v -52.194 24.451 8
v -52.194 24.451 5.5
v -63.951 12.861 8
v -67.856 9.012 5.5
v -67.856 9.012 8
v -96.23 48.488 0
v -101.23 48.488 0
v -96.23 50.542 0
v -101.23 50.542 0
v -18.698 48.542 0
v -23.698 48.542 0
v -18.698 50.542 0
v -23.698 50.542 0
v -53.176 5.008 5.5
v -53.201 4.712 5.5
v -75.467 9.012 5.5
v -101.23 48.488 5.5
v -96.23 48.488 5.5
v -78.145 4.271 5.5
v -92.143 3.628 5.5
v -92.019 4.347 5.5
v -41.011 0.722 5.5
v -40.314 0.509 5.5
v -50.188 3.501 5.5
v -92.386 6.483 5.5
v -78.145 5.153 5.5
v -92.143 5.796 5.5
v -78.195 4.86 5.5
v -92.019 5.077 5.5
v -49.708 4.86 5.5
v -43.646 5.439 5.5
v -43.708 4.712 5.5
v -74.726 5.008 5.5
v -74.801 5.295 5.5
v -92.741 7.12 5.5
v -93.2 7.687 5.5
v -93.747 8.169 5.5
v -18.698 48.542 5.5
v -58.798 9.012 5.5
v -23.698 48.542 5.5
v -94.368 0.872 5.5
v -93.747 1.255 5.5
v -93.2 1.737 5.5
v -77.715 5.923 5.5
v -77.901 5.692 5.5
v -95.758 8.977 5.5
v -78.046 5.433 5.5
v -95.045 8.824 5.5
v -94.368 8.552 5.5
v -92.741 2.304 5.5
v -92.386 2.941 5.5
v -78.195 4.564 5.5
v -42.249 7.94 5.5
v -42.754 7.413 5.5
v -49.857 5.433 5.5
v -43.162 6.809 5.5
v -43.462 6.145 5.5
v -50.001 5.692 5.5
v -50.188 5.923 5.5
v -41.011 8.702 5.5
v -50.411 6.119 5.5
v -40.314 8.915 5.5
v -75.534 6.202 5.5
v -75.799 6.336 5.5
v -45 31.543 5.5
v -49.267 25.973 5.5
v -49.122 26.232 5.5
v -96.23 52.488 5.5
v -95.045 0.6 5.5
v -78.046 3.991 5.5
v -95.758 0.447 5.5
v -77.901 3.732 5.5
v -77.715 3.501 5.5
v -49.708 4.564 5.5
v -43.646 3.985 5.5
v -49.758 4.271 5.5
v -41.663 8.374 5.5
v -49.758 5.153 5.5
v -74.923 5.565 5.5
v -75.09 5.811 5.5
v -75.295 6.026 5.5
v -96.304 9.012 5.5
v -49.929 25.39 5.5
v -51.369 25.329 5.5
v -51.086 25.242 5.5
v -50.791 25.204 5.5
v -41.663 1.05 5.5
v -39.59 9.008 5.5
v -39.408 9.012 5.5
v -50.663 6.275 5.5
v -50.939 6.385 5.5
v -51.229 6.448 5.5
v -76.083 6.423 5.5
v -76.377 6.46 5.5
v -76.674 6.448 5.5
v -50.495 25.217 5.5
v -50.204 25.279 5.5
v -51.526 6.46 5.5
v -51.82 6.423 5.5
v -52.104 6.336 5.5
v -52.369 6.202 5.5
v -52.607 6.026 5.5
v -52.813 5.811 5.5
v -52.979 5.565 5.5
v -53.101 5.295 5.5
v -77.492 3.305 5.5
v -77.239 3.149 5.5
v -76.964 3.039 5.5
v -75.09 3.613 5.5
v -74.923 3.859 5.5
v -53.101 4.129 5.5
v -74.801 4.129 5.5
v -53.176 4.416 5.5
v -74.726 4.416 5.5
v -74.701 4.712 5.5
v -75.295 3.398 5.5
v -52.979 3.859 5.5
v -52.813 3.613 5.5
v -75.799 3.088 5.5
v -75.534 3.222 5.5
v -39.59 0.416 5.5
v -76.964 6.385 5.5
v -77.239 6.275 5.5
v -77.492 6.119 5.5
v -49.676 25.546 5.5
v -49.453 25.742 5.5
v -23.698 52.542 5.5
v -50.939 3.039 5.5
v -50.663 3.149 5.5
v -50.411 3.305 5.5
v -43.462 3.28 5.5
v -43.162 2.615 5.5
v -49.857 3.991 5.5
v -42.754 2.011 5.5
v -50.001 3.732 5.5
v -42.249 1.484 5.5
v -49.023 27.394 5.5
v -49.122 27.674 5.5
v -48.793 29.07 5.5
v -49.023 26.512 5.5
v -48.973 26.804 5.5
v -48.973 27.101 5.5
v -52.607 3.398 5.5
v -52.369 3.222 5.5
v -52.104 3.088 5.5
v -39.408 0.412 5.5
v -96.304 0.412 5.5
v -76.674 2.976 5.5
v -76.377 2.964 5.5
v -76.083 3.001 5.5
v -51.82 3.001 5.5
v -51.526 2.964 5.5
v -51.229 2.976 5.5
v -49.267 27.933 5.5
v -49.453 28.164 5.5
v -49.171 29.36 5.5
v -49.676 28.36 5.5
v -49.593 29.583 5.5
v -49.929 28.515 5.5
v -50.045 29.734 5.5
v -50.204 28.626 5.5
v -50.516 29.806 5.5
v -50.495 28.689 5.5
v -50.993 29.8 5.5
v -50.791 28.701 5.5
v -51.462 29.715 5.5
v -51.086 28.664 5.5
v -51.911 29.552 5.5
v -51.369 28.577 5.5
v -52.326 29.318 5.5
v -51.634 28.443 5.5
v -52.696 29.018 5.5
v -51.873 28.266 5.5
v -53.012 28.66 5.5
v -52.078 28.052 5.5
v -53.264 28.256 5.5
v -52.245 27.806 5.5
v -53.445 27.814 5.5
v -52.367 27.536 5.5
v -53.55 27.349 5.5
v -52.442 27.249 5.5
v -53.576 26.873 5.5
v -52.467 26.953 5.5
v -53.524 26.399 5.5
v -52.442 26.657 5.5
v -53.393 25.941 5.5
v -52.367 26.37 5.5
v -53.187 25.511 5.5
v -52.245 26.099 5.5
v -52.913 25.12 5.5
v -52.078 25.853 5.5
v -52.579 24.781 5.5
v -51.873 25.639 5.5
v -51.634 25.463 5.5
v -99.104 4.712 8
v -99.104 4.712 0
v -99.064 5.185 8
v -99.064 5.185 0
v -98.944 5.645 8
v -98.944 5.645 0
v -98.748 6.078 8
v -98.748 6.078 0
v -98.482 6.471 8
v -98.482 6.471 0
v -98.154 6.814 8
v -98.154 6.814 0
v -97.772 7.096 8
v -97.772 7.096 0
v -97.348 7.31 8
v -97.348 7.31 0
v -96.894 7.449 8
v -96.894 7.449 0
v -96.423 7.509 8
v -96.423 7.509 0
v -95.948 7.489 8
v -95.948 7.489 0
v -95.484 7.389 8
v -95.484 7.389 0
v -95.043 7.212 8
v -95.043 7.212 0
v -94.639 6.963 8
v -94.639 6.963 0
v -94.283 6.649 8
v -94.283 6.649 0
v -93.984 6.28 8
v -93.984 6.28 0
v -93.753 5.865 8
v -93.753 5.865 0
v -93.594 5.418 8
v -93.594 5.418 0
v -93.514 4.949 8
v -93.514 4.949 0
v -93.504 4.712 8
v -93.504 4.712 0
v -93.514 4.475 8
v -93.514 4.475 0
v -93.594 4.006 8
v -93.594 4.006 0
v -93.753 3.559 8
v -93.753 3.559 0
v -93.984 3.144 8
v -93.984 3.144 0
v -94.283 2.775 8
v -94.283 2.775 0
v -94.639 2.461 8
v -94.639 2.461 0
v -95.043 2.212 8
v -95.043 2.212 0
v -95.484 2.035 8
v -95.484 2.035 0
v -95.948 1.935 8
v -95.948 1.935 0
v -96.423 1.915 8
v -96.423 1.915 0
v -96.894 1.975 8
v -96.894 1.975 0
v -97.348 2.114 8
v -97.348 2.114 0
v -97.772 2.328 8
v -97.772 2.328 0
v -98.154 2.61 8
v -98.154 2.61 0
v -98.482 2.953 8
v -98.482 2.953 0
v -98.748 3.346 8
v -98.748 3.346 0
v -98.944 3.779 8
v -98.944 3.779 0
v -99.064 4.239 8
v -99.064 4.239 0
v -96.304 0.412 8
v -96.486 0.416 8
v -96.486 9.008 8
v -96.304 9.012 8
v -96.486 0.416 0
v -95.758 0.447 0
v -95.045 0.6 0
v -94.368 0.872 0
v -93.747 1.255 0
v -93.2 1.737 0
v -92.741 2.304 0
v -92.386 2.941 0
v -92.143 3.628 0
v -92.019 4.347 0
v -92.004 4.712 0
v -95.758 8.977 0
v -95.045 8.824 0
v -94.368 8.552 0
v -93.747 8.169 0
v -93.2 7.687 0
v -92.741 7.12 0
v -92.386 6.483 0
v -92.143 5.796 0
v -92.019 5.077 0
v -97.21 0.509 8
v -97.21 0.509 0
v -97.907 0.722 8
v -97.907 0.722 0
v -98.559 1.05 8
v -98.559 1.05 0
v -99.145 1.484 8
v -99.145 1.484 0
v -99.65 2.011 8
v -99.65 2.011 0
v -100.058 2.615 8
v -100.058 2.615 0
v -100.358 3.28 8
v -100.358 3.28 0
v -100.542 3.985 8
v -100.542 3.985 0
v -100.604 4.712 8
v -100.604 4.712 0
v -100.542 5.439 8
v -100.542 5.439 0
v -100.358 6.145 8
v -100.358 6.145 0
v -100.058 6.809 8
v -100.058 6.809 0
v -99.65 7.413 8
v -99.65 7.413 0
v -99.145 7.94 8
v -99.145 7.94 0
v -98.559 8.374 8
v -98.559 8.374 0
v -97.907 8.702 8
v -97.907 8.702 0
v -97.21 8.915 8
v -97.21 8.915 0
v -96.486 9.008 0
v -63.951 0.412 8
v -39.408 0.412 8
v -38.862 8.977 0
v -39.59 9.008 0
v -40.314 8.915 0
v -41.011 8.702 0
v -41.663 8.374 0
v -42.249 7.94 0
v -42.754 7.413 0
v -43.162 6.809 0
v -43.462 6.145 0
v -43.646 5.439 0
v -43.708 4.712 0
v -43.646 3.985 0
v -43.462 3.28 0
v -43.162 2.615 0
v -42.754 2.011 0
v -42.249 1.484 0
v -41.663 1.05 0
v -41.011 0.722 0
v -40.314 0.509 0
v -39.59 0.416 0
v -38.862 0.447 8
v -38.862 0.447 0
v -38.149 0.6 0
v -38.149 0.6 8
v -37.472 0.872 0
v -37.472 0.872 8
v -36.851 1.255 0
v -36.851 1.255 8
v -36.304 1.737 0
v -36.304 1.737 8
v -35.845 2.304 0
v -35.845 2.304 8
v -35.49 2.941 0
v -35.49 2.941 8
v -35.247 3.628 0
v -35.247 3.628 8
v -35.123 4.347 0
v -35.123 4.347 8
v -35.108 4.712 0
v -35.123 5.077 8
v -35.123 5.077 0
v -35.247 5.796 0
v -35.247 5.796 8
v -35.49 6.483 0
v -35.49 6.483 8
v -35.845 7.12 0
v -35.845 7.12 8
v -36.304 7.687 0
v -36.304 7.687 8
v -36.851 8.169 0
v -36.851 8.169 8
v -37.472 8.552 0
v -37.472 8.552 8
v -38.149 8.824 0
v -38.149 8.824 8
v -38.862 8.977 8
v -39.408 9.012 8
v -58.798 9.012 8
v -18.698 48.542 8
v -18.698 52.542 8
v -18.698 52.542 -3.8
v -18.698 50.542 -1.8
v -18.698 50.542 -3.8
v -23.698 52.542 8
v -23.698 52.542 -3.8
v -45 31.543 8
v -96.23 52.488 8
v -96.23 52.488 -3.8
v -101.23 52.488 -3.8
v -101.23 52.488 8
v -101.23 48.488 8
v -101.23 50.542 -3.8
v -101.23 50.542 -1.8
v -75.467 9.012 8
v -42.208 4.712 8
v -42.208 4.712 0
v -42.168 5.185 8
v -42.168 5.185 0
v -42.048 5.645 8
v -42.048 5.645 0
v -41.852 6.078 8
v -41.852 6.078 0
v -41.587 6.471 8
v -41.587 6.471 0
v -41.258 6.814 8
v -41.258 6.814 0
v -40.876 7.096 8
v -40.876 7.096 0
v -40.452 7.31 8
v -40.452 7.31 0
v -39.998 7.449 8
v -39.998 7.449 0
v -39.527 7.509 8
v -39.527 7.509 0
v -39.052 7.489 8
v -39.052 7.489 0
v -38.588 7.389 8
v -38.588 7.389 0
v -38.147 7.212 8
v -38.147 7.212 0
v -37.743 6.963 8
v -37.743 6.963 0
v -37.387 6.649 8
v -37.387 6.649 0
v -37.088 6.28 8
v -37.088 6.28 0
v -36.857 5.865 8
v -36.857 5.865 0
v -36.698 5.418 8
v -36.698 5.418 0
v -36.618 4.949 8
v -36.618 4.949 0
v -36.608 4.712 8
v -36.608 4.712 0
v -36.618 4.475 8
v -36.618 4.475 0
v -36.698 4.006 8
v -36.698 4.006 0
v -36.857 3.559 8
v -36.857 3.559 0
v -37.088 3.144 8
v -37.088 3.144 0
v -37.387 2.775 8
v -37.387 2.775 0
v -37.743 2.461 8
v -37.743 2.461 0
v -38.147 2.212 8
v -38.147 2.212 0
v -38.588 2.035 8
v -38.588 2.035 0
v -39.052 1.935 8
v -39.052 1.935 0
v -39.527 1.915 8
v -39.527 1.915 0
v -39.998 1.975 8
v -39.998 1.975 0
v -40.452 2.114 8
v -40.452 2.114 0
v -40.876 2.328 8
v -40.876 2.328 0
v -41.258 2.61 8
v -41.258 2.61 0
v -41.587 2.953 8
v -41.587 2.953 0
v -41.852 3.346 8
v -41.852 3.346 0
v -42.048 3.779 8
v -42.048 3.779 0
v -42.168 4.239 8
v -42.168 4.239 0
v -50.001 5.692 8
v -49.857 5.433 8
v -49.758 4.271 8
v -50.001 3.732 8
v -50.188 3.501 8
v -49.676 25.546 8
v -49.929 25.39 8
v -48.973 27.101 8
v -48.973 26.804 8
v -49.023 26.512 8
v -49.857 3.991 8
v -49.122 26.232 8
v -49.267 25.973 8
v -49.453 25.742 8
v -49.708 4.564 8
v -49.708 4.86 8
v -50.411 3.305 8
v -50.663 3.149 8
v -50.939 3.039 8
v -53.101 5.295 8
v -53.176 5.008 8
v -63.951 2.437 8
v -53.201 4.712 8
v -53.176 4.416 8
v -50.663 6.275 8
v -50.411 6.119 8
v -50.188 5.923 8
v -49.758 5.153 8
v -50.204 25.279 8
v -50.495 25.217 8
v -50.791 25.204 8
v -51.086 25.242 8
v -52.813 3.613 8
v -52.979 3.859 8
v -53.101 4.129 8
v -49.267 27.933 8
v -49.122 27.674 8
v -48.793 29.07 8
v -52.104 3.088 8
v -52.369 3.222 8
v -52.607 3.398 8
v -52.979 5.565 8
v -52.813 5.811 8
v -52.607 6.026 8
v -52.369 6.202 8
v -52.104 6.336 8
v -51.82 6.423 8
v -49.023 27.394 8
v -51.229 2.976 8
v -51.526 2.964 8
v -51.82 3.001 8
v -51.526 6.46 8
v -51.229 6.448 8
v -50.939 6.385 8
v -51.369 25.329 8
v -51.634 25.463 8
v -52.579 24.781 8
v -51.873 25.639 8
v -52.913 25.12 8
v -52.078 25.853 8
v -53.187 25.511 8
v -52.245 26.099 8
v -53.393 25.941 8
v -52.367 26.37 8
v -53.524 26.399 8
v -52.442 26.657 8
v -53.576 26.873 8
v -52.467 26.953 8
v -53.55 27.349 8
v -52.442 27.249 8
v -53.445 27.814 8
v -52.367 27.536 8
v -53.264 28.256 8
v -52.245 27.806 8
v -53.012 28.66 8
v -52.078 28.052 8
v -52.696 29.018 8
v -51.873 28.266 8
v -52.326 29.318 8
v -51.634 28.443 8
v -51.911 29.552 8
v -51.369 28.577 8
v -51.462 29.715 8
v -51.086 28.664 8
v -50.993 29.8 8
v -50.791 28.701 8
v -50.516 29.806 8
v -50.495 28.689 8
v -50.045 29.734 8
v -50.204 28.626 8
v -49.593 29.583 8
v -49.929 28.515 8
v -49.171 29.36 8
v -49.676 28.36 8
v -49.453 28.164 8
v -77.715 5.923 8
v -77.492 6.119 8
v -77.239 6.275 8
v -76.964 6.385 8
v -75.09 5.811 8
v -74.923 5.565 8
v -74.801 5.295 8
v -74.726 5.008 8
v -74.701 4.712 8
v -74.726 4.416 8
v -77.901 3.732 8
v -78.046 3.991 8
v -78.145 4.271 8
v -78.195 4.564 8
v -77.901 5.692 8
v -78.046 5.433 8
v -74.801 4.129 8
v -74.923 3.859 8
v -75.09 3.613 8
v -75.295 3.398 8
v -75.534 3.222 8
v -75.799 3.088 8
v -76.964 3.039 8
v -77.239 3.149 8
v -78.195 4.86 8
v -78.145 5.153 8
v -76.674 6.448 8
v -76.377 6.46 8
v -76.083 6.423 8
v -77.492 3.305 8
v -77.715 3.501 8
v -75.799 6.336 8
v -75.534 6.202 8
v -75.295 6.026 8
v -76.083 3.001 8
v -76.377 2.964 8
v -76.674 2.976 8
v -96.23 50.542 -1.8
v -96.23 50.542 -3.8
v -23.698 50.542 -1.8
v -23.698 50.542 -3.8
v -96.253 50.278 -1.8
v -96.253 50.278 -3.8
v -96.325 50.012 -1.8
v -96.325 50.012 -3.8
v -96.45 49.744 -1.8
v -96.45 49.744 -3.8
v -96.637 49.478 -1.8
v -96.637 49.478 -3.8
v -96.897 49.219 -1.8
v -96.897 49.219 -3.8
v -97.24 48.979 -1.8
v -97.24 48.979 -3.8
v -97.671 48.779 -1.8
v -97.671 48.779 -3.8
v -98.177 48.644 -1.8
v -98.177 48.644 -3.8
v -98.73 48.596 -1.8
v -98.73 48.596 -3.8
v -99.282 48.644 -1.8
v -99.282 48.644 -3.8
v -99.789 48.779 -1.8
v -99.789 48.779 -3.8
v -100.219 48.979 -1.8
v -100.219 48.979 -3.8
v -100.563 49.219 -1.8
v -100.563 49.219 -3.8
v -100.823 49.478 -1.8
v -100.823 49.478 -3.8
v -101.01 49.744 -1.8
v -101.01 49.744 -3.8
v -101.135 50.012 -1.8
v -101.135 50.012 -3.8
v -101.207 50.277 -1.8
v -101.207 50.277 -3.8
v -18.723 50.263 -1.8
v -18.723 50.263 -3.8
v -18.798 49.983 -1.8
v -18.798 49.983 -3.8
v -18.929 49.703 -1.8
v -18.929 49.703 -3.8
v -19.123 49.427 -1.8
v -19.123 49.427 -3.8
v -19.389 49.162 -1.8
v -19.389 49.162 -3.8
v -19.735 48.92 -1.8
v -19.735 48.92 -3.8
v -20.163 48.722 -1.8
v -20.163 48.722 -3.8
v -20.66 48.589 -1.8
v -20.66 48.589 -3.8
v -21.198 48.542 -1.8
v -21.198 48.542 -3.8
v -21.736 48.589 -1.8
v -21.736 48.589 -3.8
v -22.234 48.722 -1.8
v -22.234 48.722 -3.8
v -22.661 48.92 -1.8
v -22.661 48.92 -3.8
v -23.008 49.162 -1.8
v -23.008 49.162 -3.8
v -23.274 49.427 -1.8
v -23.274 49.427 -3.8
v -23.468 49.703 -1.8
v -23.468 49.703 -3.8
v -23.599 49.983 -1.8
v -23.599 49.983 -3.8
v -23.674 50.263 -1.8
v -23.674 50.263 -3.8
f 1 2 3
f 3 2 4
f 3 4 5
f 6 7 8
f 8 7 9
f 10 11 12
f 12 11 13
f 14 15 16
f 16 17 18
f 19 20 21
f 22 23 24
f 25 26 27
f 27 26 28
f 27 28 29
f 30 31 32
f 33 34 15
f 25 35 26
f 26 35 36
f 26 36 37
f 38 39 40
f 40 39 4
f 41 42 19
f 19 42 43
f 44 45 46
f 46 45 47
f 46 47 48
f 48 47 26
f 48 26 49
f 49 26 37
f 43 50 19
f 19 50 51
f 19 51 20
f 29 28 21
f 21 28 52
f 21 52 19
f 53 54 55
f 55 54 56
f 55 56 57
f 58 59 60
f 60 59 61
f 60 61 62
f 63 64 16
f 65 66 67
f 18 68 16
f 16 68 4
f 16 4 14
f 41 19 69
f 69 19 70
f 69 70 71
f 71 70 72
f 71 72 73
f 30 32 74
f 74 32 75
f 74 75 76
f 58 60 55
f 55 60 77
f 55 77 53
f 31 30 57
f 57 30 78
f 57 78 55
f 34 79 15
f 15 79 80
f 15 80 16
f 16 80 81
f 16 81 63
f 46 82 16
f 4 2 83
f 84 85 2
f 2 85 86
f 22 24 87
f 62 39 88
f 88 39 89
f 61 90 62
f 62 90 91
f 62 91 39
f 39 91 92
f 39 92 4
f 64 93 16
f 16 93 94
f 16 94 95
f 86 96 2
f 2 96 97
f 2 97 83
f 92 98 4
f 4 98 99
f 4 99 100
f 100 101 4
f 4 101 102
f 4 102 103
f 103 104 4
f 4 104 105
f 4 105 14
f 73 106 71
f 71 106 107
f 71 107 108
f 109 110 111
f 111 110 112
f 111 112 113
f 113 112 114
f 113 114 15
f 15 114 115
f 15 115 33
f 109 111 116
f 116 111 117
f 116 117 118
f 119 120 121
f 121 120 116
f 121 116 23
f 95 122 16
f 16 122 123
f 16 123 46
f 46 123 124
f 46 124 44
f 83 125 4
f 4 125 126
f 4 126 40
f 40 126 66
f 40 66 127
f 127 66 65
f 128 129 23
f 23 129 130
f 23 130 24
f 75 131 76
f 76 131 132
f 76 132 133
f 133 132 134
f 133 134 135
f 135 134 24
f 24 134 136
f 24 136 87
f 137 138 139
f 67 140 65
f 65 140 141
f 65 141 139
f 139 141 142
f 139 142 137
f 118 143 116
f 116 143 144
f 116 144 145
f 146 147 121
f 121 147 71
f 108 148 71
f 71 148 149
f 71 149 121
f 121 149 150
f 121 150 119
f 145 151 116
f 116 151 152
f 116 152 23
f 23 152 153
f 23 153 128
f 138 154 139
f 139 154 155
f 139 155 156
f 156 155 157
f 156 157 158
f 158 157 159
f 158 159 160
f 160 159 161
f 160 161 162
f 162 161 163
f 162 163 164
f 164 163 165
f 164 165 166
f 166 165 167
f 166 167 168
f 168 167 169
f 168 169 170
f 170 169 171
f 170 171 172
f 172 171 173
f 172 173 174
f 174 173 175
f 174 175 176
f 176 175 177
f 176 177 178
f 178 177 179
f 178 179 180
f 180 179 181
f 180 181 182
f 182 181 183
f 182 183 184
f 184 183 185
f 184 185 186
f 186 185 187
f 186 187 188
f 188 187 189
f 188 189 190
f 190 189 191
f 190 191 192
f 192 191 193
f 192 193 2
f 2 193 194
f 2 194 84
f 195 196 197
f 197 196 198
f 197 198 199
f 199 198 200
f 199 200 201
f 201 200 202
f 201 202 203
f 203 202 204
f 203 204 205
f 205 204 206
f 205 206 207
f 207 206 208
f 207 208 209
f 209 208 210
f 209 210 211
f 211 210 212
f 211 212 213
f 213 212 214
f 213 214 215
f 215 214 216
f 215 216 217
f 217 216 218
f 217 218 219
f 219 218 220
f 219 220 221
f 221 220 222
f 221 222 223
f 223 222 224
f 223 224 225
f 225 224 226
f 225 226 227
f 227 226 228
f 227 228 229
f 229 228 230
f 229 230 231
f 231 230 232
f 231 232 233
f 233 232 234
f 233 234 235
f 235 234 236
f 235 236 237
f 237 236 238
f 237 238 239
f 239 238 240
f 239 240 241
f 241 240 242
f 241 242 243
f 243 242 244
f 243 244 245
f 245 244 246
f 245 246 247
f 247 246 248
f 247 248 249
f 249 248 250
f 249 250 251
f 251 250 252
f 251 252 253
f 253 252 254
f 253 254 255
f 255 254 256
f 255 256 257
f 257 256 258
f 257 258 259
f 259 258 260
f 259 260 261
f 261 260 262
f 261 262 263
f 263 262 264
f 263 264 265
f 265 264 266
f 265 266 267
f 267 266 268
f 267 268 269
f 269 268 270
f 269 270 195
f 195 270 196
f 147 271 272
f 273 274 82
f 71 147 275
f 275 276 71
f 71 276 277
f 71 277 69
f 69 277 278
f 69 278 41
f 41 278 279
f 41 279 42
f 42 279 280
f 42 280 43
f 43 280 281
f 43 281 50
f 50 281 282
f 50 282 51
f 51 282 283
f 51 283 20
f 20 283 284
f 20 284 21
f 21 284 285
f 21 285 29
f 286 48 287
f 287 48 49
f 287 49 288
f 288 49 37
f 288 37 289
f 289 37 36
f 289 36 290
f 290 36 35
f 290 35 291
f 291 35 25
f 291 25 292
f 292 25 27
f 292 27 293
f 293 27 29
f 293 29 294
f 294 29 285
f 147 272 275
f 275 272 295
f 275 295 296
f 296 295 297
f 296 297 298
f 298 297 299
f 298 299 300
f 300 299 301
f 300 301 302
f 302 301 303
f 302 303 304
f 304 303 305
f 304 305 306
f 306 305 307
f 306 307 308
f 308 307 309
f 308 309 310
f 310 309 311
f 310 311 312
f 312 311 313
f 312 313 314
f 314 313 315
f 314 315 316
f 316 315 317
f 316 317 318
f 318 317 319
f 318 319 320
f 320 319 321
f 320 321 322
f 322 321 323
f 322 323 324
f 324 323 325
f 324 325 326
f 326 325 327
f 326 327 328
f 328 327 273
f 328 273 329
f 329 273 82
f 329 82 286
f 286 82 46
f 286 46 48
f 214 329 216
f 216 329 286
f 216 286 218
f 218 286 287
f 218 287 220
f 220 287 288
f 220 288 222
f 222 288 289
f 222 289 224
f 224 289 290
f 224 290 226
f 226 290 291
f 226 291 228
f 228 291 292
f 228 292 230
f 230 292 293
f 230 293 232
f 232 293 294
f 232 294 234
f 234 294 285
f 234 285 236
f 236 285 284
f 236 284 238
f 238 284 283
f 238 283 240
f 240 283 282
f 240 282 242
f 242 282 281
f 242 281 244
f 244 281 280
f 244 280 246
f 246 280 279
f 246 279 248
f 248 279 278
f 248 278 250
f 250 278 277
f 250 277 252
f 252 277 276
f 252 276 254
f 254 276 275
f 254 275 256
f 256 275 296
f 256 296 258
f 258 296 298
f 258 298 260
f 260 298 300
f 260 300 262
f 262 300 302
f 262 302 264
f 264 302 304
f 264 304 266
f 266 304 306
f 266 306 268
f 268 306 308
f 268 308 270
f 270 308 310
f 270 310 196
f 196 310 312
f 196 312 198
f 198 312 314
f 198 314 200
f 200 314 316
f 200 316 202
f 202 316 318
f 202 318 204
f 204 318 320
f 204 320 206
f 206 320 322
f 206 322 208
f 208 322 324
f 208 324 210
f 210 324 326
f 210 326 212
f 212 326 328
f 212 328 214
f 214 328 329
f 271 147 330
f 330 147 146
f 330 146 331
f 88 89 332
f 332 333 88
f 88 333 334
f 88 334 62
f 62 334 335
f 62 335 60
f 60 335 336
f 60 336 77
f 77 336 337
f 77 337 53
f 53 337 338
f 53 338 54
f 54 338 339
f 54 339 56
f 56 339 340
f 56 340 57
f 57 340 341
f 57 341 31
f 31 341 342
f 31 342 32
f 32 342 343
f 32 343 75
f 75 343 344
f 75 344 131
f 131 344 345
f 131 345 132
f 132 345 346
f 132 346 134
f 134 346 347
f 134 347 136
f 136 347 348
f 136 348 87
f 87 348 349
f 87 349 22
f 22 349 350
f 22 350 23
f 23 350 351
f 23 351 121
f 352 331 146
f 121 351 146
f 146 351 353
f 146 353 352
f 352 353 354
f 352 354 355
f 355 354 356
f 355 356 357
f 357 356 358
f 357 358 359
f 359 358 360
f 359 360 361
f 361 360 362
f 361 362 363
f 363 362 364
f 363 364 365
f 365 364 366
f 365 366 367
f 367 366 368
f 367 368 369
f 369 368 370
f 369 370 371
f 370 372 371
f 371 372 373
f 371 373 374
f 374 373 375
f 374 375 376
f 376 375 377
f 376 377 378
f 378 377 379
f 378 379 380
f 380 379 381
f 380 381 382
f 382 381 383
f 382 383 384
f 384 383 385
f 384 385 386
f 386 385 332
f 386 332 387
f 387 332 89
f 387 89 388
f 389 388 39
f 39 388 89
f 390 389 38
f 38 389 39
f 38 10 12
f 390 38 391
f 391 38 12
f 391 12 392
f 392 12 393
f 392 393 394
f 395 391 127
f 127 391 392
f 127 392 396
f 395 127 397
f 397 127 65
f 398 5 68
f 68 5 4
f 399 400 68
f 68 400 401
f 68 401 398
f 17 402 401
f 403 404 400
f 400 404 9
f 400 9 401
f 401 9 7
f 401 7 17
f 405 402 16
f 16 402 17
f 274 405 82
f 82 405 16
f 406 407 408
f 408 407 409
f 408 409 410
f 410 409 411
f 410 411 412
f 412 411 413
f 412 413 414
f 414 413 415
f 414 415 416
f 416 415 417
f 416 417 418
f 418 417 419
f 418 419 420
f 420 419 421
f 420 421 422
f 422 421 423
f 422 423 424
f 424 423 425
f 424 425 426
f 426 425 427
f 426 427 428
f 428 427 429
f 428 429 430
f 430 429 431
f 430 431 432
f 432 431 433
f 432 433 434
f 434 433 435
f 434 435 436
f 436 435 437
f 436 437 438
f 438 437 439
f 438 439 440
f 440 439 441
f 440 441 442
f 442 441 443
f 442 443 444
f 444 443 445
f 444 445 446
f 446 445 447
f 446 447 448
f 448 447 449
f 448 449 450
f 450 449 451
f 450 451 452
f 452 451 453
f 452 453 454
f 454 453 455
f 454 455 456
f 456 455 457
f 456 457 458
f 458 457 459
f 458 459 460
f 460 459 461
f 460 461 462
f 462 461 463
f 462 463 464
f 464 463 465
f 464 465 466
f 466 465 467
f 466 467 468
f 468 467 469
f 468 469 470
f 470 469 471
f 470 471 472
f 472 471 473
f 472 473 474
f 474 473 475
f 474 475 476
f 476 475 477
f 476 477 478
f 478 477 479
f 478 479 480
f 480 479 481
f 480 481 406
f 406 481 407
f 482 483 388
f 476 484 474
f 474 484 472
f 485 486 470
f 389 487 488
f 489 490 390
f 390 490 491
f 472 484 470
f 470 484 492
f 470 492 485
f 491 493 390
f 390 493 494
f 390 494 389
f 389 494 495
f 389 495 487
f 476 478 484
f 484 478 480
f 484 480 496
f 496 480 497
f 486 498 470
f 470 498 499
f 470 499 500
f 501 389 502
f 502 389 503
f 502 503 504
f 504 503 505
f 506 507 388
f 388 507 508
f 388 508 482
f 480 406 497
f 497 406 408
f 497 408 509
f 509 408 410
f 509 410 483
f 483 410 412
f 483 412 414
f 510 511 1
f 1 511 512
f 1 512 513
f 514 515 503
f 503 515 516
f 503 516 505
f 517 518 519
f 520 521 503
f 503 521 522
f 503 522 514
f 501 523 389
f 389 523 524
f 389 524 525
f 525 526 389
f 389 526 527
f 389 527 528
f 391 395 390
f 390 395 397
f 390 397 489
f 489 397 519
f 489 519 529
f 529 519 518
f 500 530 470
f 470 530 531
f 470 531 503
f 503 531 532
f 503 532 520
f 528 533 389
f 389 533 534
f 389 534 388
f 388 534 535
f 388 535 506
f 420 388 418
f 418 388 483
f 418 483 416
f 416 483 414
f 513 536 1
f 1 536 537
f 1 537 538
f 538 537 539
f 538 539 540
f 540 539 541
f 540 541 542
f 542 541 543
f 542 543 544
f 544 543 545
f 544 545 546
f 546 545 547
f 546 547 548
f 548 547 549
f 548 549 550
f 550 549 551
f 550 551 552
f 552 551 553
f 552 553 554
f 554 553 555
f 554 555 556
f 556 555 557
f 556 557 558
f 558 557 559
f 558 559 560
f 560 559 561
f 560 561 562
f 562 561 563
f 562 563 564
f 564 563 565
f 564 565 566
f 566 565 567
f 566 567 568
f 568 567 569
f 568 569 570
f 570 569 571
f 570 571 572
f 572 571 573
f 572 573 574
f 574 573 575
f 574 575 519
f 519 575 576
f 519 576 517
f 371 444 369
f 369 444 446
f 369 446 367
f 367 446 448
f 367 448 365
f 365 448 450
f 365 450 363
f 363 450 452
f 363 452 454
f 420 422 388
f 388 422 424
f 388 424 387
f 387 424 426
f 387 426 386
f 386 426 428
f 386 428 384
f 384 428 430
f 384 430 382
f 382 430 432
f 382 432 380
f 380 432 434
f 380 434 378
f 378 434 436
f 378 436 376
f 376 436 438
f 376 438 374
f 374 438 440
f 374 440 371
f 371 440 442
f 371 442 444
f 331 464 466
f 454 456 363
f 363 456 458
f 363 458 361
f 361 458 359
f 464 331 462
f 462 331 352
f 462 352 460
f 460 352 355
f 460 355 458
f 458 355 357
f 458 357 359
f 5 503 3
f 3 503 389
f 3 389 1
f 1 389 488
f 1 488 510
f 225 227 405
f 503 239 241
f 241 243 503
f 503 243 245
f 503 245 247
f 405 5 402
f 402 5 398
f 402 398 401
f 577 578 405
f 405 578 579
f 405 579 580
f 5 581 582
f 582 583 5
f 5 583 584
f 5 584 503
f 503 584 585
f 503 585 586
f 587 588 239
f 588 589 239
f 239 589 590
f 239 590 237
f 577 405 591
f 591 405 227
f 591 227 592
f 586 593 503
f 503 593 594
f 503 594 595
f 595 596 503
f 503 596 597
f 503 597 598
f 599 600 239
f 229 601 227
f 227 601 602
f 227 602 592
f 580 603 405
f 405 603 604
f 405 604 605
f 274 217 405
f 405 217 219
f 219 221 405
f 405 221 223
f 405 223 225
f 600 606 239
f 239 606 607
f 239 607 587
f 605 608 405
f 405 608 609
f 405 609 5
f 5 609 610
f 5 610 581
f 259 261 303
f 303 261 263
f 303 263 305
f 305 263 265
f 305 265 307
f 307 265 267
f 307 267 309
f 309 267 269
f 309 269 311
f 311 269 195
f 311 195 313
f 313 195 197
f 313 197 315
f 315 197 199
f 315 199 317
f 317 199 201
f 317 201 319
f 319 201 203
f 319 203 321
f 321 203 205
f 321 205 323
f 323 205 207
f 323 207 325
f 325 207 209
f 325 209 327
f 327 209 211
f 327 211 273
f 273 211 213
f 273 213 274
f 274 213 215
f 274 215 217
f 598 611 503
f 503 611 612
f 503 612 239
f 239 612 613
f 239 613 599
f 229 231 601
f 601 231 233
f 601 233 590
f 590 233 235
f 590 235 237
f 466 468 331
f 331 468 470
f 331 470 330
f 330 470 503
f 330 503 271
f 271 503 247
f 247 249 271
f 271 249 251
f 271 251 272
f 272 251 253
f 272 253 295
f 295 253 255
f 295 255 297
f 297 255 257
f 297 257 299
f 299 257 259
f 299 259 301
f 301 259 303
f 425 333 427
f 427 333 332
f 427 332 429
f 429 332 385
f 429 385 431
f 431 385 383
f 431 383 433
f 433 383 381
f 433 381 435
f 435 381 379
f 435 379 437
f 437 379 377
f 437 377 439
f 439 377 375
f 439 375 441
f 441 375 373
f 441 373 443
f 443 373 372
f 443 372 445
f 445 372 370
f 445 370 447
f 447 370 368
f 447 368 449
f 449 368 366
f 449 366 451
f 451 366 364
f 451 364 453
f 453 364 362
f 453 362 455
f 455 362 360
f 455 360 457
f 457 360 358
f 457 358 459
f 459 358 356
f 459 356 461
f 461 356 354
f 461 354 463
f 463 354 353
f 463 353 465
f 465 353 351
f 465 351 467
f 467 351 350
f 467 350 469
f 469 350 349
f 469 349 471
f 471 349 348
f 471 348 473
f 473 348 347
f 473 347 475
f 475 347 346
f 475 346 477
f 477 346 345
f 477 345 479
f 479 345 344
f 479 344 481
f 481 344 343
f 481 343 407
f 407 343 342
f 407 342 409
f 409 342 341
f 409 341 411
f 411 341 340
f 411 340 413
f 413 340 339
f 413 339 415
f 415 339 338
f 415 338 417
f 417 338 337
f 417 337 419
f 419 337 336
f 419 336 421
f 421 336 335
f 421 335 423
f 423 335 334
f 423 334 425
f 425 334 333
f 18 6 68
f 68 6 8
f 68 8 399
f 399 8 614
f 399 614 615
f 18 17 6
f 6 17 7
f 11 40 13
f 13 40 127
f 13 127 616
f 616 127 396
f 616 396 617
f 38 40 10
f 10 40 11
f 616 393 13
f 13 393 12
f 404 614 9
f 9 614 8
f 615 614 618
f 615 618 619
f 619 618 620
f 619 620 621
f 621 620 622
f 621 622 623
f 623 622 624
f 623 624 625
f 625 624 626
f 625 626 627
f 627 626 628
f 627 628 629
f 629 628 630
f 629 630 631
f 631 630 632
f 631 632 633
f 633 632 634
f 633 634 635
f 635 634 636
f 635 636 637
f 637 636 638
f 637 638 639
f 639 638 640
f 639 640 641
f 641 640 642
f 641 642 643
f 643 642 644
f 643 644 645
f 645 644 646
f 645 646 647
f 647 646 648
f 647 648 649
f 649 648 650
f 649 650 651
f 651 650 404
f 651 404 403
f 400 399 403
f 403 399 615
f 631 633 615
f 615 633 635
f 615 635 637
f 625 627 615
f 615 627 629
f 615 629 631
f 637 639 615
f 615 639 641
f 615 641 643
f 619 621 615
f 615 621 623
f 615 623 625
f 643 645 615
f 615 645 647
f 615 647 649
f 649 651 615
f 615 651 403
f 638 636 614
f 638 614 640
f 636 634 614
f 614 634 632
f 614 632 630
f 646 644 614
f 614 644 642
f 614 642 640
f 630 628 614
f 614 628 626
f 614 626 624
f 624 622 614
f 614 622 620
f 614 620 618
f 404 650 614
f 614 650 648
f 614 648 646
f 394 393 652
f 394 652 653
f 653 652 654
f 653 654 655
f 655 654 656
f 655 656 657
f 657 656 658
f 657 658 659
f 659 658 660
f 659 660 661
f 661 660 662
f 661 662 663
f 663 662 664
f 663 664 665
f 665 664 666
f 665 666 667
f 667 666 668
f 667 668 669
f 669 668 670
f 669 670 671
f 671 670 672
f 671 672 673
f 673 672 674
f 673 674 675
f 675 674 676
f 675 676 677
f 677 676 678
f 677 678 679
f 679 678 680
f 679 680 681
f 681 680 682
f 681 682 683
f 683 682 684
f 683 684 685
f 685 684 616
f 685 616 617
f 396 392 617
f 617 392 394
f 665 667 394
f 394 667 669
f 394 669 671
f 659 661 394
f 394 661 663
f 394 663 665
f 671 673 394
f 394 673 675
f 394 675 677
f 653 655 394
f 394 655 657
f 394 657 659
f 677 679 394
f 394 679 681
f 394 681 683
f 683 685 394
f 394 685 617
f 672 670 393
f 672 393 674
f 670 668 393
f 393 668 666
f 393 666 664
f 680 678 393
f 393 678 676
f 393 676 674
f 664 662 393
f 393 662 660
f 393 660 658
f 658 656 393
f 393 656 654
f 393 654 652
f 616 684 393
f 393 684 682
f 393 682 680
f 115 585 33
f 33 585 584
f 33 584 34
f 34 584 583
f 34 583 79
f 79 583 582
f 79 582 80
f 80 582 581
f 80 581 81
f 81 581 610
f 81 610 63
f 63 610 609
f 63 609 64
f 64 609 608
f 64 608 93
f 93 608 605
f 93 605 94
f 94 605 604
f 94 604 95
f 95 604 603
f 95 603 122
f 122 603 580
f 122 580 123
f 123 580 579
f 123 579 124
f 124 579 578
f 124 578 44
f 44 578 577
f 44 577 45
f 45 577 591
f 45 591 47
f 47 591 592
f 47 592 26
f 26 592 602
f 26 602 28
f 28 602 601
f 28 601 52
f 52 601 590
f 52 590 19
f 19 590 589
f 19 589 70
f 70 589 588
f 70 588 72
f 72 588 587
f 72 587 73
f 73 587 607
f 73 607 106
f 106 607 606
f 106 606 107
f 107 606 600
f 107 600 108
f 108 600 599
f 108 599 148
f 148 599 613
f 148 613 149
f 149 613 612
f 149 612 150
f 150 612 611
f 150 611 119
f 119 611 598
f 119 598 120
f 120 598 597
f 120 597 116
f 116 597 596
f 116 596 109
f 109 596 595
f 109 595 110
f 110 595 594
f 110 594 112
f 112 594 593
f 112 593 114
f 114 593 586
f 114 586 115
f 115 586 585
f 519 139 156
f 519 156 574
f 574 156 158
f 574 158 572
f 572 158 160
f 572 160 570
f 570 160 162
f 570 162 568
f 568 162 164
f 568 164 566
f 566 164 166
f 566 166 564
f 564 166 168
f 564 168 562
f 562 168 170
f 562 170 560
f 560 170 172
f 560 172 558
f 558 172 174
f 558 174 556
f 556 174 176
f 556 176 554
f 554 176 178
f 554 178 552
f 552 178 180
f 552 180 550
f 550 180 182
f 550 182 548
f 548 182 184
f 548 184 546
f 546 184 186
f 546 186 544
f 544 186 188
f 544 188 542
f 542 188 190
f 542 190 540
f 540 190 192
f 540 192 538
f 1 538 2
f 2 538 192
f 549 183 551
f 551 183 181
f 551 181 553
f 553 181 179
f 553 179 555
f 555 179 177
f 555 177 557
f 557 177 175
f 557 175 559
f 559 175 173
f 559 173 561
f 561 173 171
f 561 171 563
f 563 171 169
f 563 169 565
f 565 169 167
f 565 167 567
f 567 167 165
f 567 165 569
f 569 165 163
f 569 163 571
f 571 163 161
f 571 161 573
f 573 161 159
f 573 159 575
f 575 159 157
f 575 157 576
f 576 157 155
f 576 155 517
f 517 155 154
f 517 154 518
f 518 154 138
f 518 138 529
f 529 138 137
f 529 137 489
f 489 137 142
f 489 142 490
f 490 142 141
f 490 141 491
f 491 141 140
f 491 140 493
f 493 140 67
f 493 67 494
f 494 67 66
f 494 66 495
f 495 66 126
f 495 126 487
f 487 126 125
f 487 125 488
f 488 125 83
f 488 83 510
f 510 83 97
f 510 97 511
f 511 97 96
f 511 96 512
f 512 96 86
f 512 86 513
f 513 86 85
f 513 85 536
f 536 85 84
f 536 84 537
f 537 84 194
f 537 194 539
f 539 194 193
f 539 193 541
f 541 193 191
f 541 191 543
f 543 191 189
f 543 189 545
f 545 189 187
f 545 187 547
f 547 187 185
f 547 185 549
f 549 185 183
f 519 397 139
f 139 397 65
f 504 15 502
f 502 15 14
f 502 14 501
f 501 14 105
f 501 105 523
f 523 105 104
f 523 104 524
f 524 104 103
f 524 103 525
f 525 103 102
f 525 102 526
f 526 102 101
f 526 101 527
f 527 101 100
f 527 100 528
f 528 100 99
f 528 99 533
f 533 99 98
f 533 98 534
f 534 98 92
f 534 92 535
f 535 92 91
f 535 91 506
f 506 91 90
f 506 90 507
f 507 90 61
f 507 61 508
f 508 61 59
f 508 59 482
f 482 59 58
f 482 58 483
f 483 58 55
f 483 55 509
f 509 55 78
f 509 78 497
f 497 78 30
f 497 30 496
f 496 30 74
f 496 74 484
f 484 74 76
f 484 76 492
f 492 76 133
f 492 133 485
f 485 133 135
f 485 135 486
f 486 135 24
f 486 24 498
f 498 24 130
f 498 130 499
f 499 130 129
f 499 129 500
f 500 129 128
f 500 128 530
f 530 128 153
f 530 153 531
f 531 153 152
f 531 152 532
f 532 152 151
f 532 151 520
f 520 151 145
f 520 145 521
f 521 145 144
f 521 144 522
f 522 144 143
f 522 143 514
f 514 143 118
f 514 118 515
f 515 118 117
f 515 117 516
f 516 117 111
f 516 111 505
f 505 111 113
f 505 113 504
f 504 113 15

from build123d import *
from build123d.topology import SkipClean

# Parameters (mm, degrees)
SKETCH1_R           = 4.3
SKETCH1_R_2         = 2.8
SKETCH1_W           = 5
SKETCH1_H           = 2
BOSS_EXTRUDE1_DEPTH = 5.5
SKETCH2_R           = 2.8
BOSS_EXTRUDE2_DEPTH = 2.5
SKETCH3_W           = 5
SKETCH3_H           = 2
SKETCH3_H_2         = 1.945877
BOSS_EXTRUDE3_DEPTH = 1.8
SKETCH4_RX          = 2.5
SKETCH4_RY          = 1.945877
BOSS_EXTRUDE4_DEPTH = 2
CUT_EXTRUDE1_REACH  = 116.662
BOSS_EXTRUDE5_DEPTH = 2.5
SKETCH7_R           = 1.75
CUT_EXTRUDE2_DEPTH  = 115.431852156
CUT_EXTRUDE3_DEPTH  = 12.446


with BuildPart() as part:
    # Sketch1 → Boss-Extrude1 (new body)
    # profile 1 of 6: a face of its own
    with BuildSketch(Plane.XY):
        with Locations((-96.304, 4.712)):
            Circle(SKETCH1_R)
        with Locations((-96.304, 4.712)):
            Circle(SKETCH1_R_2, mode=Mode.SUBTRACT)
    # profile 2 of 6: a face of its own
    with BuildSketch(Plane.XY):
        with Locations((-39.408, 4.712)):
            Circle(SKETCH1_R)
        with Locations((-39.408, 4.712)):
            Circle(SKETCH1_R_2, mode=Mode.SUBTRACT)
    # profile 3 of 6: a face of its own
    with BuildSketch(Plane.XY):
        with Locations((-98.72988, 49.487957)):
            Rectangle(SKETCH1_W, SKETCH1_H)
    # profile 4 of 6: a face of its own
    with BuildSketch(Plane.XY):
        with Locations((-98.72988, 51.487957)):
            Rectangle(SKETCH1_W, SKETCH1_H)
    # profile 5 of 6: a face of its own
    with BuildSketch(Plane.XY):
        with Locations((-21.198302598, 49.54208)):
            Rectangle(SKETCH1_W, SKETCH1_H)
    # profile 6 of 6: a face of its own
    with BuildSketch(Plane.XY):
        with Locations((-21.198302598, 51.54208)):
            Rectangle(SKETCH1_W, SKETCH1_H)
    extrude(amount=BOSS_EXTRUDE1_DEPTH)

    # Sketch2 → Boss-Extrude2 (add)
    with BuildSketch(Plane.XY.offset(5.5)):
        with BuildLine():
            Line((-96.304, 0.412), (-39.408, 0.412))
            ThreePointArc((-39.408, 0.412), (-35.108, 4.712), (-39.408, 9.012))
            Line((-39.408, 9.012), (-58.798327935, 9.012))
            Line((-58.798327935, 9.012), (-18.698302598, 48.54208))
            Line((-18.698302598, 48.54208), (-18.698302598, 52.54208))
            Line((-18.698302598, 52.54208), (-23.698302598, 52.54208))
            Line((-23.698302598, 52.54208), (-67.856, 9.012))
            Line((-67.856, 9.012), (-96.22988, 52.487957))
            Line((-96.22988, 52.487957), (-101.22988, 52.487957))
            Line((-101.22988, 52.487957), (-101.22988, 48.487957))
            Line((-101.22988, 48.487957), (-75.46653529, 9.012))
            Line((-75.46653529, 9.012), (-96.304, 9.012))
            ThreePointArc((-96.304, 9.012), (-100.604, 4.712), (-96.304, 0.412))
        make_face()
        with Locations((-96.304, 4.712)):
            Circle(SKETCH2_R, mode=Mode.SUBTRACT)
        with Locations((-39.408, 4.712)):
            Circle(SKETCH2_R, mode=Mode.SUBTRACT)
    extrude(amount=BOSS_EXTRUDE2_DEPTH)

    # Sketch3 → Boss-Extrude3 (add)
    with BuildSketch(Plane(origin=(0, 0, 0), x_dir=(-1, 0, 0), z_dir=(0, 0, -1))):
        with Locations((21.198302598, 51.54208)):
            Rectangle(SKETCH3_W, SKETCH3_H)
        with Locations((98.72988, 51.5150185)):
            Rectangle(SKETCH3_W, SKETCH3_H_2)
    extrude(amount=BOSS_EXTRUDE3_DEPTH)

    # Sketch4 → Boss-Extrude4 (add)
    with BuildSketch(Plane(origin=(0, 0, -1.8), x_dir=(-1, 0, 0), z_dir=(0, 0, -1))):
        with BuildLine():
            add(Edge.make_bspline(
                [(101.22988, 50.54208), (101.22988, 52.487957031), (98.72987996, 52.487957)],
                knots=[0, 0, 0, 1.570796343, 1.570796343, 1.570796343], degree=2, weights=[1, 0.707106776, 1]))
            Line((101.22988, 50.54208), (101.22988, 52.487957))
            Line((101.22988, 52.487957), (98.72987996, 52.487957))
        make_face()
        with BuildLine():
            Line((96.22988, 52.487957), (96.22988, 50.54208))
            add(Edge.make_bspline(
                [(98.72987996, 52.487957), (96.22988, 52.487956969), (96.22988, 50.54208)],
                knots=[1.570796343, 1.570796343, 1.570796343, 3.141592654, 3.141592654, 3.141592654], degree=2, weights=[1, 0.707106787, 1]))
            Line((98.72987996, 52.487957), (96.22988, 52.487957))
        make_face()
        with Locations((98.72988, 50.54208)):
            Ellipse(SKETCH4_RX, SKETCH4_RY)
        with BuildLine():
            Line((18.698302598, 52.54208), (18.698302598, 50.54208))
            add(Edge.make_bspline(
                [(21.198302598, 52.54208), (18.698302598, 52.54208), (18.698302598, 50.54208)],
                knots=[1.570796327, 1.570796327, 1.570796327, 3.141592654, 3.141592654, 3.141592654], degree=2, weights=[1, 0.707106781, 1]))
            Line((21.198302598, 52.54208), (18.698302598, 52.54208))
        make_face()
        with BuildLine():
            add(Edge.make_bspline(
                [(23.698302598, 50.54208), (23.698302598, 52.54208), (21.198302598, 52.54208)],
                knots=[0, 0, 0, 1.570796327, 1.570796327, 1.570796327], degree=2, weights=[1, 0.707106781, 1]))
            Line((23.698302598, 50.54208), (23.698302598, 52.54208))
            Line((23.698302598, 52.54208), (21.198302598, 52.54208))
        make_face()
        with BuildLine():
            Line((23.698302598, 50.54208), (18.698302598, 50.54208))
            add(Edge.make_bspline(
                [(18.698302598, 50.54208), (18.698302598, 48.54208), (21.198302598, 48.54208), (23.698302598, 48.54208), (23.698302598, 50.54208)],
                knots=[3.141592654, 3.141592654, 3.141592654, 4.71238898, 4.71238898, 6.283185307, 6.283185307, 6.283185307], degree=2, weights=[1, 0.707106781, 1, 0.707106781, 1]))
        make_face()
        with BuildLine():
            add(Edge.make_bspline(
                [(21.198302598, 52.54208), (18.698302598, 52.54208), (18.698302598, 50.54208)],
                knots=[1.570796327, 1.570796327, 1.570796327, 3.141592654, 3.141592654, 3.141592654], degree=2, weights=[1, 0.707106781, 1]))
            Line((18.698302598, 50.54208), (23.698302598, 50.54208))
            add(Edge.make_bspline(
                [(23.698302598, 50.54208), (23.698302598, 52.54208), (21.198302598, 52.54208)],
                knots=[0, 0, 0, 1.570796327, 1.570796327, 1.570796327], degree=2, weights=[1, 0.707106781, 1]))
        make_face()
        with BuildLine():
            Line((23.698302598, 50.54208), (18.698302598, 50.54208))
            add(Edge.make_bspline(
                [(18.698302598, 50.54208), (18.698302598, 48.54208), (21.198302598, 48.54208), (23.698302598, 48.54208), (23.698302598, 50.54208)],
                knots=[3.141592654, 3.141592654, 3.141592654, 4.71238898, 4.71238898, 6.283185307, 6.283185307, 6.283185307], degree=2, weights=[1, 0.707106781, 1, 0.707106781, 1]))
        make_face()
        with BuildLine():
            add(Edge.make_bspline(
                [(21.198302598, 52.54208), (18.698302598, 52.54208), (18.698302598, 50.54208)],
                knots=[1.570796327, 1.570796327, 1.570796327, 3.141592654, 3.141592654, 3.141592654], degree=2, weights=[1, 0.707106781, 1]))
            Line((18.698302598, 50.54208), (23.698302598, 50.54208))
            add(Edge.make_bspline(
                [(23.698302598, 50.54208), (23.698302598, 52.54208), (21.198302598, 52.54208)],
                knots=[0, 0, 0, 1.570796327, 1.570796327, 1.570796327], degree=2, weights=[1, 0.707106781, 1]))
        make_face()
    extrude(amount=BOSS_EXTRUDE4_DEPTH)

    # Sketch5 → Cut-Extrude1 (cut, up to next)
    with BuildSketch(Plane.XY.offset(8), mode=Mode.PRIVATE) as cut_extrude1_sk1:
        with BuildLine():
            ThreePointArc((-78.201246925, 4.712), (-76.451246925, 2.962), (-74.701246925, 4.712))
            Line((-74.701246925, 4.712), (-78.201246925, 4.712))
        make_face()
    cut_extrude1_tool1 = extrude(cut_extrude1_sk1.sketch, amount=-CUT_EXTRUDE1_REACH, mode=Mode.PRIVATE) & part.part
    # Sketch5 → Cut-Extrude1 (cut, up to next)
    with BuildSketch(Plane.XY.offset(8), mode=Mode.PRIVATE) as cut_extrude1_sk2:
        with BuildLine():
            Line((-78.201246925, 4.712), (-74.701246925, 4.712))
            ThreePointArc((-74.701246925, 4.712), (-76.451246925, 6.462), (-78.201246925, 4.712))
        make_face()
    cut_extrude1_tool2 = extrude(cut_extrude1_sk2.sketch, amount=-CUT_EXTRUDE1_REACH, mode=Mode.PRIVATE) & part.part
    # Sketch5 → Cut-Extrude1 (cut, up to next)
    with BuildSketch(Plane.XY.offset(8), mode=Mode.PRIVATE) as cut_extrude1_sk3:
        with BuildLine():
            ThreePointArc((-78.201246925, 4.712), (-76.451246925, 2.962), (-74.701246925, 4.712))
            Line((-74.701246925, 4.712), (-78.201246925, 4.712))
        make_face()
    cut_extrude1_tool3 = extrude(cut_extrude1_sk3.sketch, amount=-CUT_EXTRUDE1_REACH, mode=Mode.PRIVATE) & part.part
    # Sketch5 → Cut-Extrude1 (cut, up to next)
    with BuildSketch(Plane.XY.offset(8), mode=Mode.PRIVATE) as cut_extrude1_sk4:
        with BuildLine():
            Line((-78.201246925, 4.712), (-74.701246925, 4.712))
            ThreePointArc((-74.701246925, 4.712), (-76.451246925, 6.462), (-78.201246925, 4.712))
        make_face()
    cut_extrude1_tool4 = extrude(cut_extrude1_sk4.sketch, amount=-CUT_EXTRUDE1_REACH, mode=Mode.PRIVATE) & part.part
    add(cut_extrude1_tool1.solids().sort_by_distance((-76.451247, 3.969277, 8))[0], mode=Mode.SUBTRACT)
    add(cut_extrude1_tool2.solids().sort_by_distance((-76.451247, 5.454723, 8))[0], mode=Mode.SUBTRACT)
    add(cut_extrude1_tool3.solids().sort_by_distance((-76.451247, 3.969277, 8))[0], mode=Mode.SUBTRACT)
    add(cut_extrude1_tool4.solids().sort_by_distance((-76.451247, 5.454723, 8))[0], mode=Mode.SUBTRACT)

    # Sketch6 → Boss-Extrude5 (add, through all)
    with BuildSketch(Plane(origin=(0, 0, 5.5), x_dir=(-1, 0, 0), z_dir=(0, 0, -1))):
        with BuildLine():
            Line((52.194141657, 24.451254914), (52.578584331, 24.780782125))
            ThreePointArc((52.578584331, 24.780782125), (52.86162294, 28.845811152), (48.792917769, 29.069887196))
            Line((48.792917769, 29.069887196), (45.000367772, 31.542783031))
            Line((45.000367772, 31.542783031), (49.066381254, 27.534560172))
            ThreePointArc((49.066381254, 27.534560172), (51.011962302, 28.67771538), (52.466845, 26.952778923))
            ThreePointArc((52.466845, 26.952778923), (52.152438331, 25.951993337), (51.322191527, 25.310811938))
            Line((51.322191527, 25.310811938), (52.194141657, 24.451254914))
        make_face()
    extrude(amount=-BOSS_EXTRUDE5_DEPTH)

    # Sketch7 → Cut-Extrude2 (cut, through all)
    with BuildSketch(Plane(origin=(0, 0, 5.5), x_dir=(-1, 0, 0), z_dir=(0, 0, -1))):
        with Locations((51.451246925, 4.712)):
            Circle(SKETCH7_R)
    extrude(amount=-CUT_EXTRUDE2_DEPTH, mode=Mode.SUBTRACT)

    # Sketch6<3> → Cut-Extrude3 (cut)
    with SkipClean():  # the faces are left unmerged after this step: merging them gives an invalid solid
        with BuildSketch(Plane(origin=(0, 0, 5.5), x_dir=(-1, 0, 0), z_dir=(0, 0, -1))):
            with BuildLine():
                ThreePointArc((49.066381254, 27.534560172), (49.488296444, 25.706517135), (51.322191527, 25.310811938))
                Line((51.322191527, 25.310811938), (49.066381254, 27.534560172))
            make_face()
            with BuildLine():
                Line((49.066381254, 27.534560172), (51.322191527, 25.310811938))
                ThreePointArc((51.322191527, 25.310811938), (52.152438331, 25.951993337), (52.466845, 26.952778923))
                ThreePointArc((52.466845, 26.952778923), (51.011962302, 28.67771538), (49.066381254, 27.534560172))
            make_face()
        extrude(amount=-CUT_EXTRUDE3_DEPTH, mode=Mode.SUBTRACT)


solid = part.part
